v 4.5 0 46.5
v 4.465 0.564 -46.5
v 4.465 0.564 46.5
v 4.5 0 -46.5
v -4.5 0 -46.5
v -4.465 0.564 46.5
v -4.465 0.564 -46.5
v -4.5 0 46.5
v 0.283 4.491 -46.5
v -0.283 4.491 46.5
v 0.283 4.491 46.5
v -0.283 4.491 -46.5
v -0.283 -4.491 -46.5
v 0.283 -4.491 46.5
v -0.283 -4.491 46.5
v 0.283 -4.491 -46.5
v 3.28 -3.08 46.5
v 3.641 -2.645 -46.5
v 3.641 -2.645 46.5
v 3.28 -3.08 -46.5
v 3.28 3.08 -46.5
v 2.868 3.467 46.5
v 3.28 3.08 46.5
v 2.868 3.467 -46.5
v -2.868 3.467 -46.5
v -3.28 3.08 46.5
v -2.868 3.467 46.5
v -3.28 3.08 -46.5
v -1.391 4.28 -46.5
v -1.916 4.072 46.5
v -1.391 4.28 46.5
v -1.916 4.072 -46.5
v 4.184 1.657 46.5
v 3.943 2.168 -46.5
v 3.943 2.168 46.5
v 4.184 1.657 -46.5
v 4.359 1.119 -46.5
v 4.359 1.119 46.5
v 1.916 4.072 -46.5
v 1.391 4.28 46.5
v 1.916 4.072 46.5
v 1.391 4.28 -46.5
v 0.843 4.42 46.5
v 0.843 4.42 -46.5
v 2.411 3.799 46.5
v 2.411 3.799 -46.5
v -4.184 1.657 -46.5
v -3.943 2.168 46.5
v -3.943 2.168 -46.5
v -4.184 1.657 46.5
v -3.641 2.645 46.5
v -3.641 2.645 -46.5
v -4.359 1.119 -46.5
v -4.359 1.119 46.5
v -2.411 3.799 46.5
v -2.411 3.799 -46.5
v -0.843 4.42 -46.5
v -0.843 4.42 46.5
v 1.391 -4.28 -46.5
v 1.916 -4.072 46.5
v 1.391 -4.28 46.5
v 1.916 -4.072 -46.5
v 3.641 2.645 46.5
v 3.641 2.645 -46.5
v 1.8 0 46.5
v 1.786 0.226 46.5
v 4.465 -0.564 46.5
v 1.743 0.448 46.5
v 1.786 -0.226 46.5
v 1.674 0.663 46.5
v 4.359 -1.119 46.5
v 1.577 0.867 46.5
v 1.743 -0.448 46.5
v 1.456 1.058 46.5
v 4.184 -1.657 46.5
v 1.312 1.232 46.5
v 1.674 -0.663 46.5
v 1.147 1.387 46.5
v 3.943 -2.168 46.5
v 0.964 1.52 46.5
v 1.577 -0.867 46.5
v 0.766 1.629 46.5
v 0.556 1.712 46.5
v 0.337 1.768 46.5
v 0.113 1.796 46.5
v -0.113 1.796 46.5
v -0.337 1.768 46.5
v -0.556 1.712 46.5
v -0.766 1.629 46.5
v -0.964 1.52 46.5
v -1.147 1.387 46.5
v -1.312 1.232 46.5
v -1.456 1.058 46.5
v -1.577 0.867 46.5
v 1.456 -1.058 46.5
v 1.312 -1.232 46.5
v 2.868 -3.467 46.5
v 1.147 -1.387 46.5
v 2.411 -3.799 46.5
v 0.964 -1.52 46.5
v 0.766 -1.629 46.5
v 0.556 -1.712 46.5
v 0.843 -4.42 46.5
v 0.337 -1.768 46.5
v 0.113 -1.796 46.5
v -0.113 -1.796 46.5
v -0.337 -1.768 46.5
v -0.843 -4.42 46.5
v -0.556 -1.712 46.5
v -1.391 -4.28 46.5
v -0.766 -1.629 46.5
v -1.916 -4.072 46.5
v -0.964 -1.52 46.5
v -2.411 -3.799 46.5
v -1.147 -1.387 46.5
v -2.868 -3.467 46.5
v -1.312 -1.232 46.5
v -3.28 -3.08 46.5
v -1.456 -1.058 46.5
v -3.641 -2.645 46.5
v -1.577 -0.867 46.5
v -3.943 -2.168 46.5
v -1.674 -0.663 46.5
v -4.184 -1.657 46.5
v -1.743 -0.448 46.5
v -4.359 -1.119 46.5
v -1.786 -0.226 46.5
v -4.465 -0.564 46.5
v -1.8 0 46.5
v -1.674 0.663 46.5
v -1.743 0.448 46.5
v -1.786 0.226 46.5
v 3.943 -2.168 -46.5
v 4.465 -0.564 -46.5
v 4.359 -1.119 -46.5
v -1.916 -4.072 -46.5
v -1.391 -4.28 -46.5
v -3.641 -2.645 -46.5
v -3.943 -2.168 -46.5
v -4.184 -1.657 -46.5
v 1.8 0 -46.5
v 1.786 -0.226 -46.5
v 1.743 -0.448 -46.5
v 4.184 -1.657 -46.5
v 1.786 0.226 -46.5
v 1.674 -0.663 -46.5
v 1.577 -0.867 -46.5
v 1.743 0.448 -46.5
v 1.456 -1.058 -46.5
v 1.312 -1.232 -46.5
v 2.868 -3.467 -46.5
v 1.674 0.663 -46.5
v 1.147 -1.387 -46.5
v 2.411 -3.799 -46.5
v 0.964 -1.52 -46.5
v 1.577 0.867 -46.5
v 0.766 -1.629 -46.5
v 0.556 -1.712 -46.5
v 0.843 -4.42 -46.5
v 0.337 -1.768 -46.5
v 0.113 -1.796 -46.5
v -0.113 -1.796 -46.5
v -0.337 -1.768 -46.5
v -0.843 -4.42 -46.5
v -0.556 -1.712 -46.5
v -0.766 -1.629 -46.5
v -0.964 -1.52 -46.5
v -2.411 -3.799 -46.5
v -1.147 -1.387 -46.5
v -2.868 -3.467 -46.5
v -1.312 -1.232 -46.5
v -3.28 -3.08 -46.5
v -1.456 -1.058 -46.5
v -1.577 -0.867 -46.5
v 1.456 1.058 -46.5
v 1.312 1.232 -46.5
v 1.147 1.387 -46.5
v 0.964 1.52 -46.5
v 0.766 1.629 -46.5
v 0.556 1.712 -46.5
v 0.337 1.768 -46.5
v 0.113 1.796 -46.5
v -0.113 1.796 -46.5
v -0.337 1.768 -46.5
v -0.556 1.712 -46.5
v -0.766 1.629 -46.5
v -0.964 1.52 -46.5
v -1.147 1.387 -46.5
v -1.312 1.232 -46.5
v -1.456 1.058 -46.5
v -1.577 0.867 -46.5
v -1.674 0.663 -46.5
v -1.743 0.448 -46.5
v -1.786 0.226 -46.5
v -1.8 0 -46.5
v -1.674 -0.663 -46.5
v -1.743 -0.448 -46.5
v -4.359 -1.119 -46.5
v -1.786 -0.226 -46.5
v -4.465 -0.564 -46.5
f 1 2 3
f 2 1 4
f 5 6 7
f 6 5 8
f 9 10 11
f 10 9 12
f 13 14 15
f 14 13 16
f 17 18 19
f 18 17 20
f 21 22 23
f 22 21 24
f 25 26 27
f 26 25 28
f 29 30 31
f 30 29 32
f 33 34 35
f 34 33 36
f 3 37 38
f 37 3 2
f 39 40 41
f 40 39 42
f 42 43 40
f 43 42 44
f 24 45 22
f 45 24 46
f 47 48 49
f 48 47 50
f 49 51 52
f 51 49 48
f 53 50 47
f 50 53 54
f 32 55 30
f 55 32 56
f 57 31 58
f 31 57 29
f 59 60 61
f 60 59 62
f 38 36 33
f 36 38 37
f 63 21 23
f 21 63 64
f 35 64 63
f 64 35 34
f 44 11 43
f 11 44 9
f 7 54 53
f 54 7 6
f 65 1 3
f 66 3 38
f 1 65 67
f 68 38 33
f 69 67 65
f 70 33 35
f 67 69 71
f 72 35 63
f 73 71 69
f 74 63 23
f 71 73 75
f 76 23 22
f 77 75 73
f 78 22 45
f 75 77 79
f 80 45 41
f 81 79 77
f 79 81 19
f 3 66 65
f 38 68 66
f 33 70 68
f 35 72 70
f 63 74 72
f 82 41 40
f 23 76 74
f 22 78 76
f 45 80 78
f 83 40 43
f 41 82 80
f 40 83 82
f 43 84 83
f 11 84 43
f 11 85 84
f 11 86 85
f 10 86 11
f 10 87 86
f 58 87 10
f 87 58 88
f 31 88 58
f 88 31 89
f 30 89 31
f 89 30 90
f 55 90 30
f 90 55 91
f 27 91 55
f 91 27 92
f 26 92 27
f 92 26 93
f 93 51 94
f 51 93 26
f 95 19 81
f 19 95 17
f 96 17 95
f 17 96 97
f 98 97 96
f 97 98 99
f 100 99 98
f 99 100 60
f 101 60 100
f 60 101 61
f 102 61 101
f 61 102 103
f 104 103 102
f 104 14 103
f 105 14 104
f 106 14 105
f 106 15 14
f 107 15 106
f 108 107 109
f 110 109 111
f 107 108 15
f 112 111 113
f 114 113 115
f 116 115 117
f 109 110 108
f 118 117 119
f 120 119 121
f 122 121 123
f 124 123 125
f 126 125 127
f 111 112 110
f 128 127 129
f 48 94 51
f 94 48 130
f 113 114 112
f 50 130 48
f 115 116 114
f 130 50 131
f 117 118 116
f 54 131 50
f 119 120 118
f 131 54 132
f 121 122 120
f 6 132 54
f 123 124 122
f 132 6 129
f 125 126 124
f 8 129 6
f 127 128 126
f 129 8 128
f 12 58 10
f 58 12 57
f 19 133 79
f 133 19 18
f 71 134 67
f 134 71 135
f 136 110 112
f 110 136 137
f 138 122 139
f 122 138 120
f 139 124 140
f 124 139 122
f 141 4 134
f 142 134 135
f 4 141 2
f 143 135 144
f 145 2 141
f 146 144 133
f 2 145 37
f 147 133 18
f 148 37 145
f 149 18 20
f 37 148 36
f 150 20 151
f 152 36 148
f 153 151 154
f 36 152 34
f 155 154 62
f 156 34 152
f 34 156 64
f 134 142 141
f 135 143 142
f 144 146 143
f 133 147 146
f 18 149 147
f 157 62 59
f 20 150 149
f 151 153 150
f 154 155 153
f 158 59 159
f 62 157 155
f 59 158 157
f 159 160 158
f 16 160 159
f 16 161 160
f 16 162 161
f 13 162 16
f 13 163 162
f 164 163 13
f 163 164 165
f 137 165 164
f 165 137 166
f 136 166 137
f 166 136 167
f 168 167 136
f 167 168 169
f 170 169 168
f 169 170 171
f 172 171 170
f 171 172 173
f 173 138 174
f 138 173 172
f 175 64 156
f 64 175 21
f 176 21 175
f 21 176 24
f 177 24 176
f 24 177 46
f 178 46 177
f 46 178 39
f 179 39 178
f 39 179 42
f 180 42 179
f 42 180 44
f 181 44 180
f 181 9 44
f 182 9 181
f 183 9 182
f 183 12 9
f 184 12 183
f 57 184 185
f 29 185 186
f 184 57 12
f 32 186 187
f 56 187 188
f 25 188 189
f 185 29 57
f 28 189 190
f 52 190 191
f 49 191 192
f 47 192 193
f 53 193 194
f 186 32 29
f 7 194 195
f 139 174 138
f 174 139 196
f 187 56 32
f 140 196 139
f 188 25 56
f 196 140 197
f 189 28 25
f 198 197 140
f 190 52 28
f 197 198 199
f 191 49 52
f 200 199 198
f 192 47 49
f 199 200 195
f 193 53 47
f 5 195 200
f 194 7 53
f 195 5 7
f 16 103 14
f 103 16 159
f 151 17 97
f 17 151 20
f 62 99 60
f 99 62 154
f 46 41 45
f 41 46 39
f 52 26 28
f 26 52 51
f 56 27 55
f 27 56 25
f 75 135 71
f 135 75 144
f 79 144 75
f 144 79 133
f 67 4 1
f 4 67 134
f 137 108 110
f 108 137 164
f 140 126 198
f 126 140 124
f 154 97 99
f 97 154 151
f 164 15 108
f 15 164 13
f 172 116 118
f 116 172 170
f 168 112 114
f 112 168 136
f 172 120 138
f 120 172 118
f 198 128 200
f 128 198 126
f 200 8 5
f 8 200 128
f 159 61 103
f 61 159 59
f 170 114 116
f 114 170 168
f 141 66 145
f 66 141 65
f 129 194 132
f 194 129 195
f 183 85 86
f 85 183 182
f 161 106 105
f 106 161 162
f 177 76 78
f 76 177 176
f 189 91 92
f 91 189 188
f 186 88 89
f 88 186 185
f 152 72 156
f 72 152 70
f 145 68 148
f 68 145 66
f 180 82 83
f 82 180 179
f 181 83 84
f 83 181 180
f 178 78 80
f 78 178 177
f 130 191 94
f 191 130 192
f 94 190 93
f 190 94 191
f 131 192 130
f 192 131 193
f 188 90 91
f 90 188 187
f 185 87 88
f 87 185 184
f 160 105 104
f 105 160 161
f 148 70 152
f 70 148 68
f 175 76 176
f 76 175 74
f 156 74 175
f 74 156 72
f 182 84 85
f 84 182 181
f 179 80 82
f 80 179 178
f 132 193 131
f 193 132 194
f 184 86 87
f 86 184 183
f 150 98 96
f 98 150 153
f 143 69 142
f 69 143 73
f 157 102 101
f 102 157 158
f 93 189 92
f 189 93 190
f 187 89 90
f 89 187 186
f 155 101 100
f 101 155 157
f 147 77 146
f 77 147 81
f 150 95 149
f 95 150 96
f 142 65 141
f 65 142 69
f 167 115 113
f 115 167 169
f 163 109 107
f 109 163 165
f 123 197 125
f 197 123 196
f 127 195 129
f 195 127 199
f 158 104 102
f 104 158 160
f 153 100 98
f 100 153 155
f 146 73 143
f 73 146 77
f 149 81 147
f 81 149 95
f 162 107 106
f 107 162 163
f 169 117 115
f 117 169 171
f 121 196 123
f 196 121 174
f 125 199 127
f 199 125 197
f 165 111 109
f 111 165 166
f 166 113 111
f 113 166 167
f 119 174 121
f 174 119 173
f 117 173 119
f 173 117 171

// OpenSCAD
$fn = 50;


difference() {
	union() {
		translate(v = [0, 0, -46.5000000000]) {
			cylinder(h = 93, r = 4.5000000000);
		}
	}
	union() {
		translate(v = [0, 0, -100.0000000000]) {
			cylinder(h = 200, r = 1.8000000000);
		}
	}
}
